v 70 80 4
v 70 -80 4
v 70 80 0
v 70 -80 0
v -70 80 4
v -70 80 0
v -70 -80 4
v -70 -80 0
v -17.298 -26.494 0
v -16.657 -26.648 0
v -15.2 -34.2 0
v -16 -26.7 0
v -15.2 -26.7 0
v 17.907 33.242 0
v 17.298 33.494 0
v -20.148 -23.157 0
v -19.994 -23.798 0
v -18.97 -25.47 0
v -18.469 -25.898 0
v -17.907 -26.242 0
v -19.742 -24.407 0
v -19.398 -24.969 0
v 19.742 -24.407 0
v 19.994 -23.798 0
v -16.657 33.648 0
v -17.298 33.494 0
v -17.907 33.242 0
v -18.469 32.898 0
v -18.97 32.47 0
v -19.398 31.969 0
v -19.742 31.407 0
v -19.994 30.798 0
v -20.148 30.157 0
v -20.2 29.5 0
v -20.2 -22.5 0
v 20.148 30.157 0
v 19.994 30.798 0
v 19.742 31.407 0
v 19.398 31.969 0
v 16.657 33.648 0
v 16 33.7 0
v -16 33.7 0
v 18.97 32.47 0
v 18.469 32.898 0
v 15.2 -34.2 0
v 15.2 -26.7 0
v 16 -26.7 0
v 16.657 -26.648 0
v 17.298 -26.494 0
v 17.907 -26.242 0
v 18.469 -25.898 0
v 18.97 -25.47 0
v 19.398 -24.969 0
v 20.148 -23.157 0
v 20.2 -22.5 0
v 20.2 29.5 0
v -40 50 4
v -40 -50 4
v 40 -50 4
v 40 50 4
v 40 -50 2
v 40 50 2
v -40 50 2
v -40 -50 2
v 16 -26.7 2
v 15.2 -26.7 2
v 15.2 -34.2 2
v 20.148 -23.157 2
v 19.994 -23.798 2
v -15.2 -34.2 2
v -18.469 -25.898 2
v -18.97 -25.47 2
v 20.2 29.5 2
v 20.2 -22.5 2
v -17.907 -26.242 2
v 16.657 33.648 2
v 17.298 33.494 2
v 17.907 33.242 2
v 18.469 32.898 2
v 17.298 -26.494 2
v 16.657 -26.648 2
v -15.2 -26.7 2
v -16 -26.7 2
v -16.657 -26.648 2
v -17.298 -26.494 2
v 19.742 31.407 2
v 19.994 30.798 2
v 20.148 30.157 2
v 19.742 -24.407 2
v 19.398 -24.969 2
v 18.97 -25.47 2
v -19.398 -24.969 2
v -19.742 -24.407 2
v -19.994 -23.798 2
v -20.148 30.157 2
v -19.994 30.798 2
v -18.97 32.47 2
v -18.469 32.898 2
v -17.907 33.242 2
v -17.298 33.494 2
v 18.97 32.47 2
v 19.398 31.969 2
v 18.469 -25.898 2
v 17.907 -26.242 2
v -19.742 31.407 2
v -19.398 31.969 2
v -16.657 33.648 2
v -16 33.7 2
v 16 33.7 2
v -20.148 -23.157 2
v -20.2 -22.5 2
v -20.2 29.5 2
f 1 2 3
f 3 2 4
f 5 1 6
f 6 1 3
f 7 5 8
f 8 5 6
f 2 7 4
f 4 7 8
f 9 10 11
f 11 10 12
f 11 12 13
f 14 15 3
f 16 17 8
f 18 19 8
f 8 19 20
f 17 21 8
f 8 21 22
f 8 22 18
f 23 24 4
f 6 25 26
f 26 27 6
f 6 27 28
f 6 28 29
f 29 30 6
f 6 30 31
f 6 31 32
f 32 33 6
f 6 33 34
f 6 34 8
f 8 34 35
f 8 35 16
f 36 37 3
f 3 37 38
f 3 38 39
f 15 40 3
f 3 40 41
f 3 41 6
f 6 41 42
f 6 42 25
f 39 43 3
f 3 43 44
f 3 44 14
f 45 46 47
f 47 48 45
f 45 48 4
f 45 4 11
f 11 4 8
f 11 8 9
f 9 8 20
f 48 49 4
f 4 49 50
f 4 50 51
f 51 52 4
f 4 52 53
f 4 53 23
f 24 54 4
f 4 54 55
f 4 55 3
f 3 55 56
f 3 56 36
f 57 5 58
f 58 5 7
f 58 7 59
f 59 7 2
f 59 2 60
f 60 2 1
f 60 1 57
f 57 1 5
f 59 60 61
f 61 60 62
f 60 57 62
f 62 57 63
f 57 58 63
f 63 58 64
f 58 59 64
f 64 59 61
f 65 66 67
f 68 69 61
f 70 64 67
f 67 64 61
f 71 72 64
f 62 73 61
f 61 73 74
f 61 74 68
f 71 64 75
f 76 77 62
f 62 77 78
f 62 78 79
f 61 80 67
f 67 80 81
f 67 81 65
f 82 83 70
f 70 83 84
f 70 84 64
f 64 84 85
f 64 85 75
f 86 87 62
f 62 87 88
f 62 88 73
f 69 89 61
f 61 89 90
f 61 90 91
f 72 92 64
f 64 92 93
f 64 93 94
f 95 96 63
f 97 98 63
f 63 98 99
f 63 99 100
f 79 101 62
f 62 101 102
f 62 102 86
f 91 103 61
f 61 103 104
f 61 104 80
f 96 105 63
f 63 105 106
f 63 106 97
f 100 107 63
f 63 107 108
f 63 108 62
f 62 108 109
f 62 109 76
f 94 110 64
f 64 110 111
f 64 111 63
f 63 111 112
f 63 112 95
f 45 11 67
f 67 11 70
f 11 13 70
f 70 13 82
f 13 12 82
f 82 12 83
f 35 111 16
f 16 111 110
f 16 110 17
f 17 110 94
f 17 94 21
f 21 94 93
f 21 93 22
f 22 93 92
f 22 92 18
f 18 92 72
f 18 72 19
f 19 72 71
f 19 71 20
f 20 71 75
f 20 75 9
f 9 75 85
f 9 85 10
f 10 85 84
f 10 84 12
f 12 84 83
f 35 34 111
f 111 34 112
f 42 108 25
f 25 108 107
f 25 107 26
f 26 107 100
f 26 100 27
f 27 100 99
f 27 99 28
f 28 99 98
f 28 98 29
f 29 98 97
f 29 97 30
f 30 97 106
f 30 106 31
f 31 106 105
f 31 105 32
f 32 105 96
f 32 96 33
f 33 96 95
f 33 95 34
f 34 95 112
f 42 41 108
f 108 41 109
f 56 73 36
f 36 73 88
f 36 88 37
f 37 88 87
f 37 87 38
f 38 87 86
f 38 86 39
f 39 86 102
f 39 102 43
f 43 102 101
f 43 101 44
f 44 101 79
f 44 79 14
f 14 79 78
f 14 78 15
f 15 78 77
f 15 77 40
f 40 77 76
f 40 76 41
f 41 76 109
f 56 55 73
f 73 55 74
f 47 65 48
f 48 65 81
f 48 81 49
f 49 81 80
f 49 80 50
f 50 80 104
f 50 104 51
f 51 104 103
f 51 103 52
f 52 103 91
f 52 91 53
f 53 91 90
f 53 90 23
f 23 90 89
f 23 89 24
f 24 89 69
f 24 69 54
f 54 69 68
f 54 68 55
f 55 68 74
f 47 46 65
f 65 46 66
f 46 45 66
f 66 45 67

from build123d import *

# Parameters (mm, degrees)
SKETCH_1_W          = 140
SKETCH_1_H          = 160
EXTRUDE_1_DEPTH     = 2
SKETCH_2_W          = 140
SKETCH_2_H          = 160
SKETCH_2_W_2        = 80
SKETCH_2_H_2        = 100
EXTRUDE_2_DEPTH     = 2
CUT_EXTRUDE_1_DEPTH = 2


with BuildPart() as part:
    # 草图1 → 凸台-拉伸1 (new body)
    with BuildSketch(Plane.XY):
        Rectangle(SKETCH_1_W, SKETCH_1_H)
    extrude(amount=EXTRUDE_1_DEPTH)

    # 草图2 → 凸台-拉伸2 (add)
    with BuildSketch(Plane.XY.offset(2)):
        Rectangle(SKETCH_2_W, SKETCH_2_H)
        Rectangle(SKETCH_2_W_2, SKETCH_2_H_2, mode=Mode.SUBTRACT)
    extrude(amount=EXTRUDE_2_DEPTH)

    # 草图4 → 切除-拉伸1 (cut)
    with BuildSketch(Plane.XY.offset(2)):
        with BuildLine():
            Line((-10.8, -34.2), (-6.8, -34.2))
            Line((-6.8, -34.2), (6.8, -34.2))
            Line((6.8, -34.2), (10.8, -34.2))
            Line((10.8, -34.2), (11.2, -34.2))
            Line((11.2, -34.2), (15.2, -34.2))
            Line((15.2, -34.2), (15.2, -26.7))
            Line((15.2, -26.7), (16, -26.7))
            ThreePointArc((16, -26.7), (18.969848481, -25.469848481), (20.2, -22.5))
            Line((20.2, -22.5), (20.2, 29.5))
            ThreePointArc((20.2, 29.5), (18.969848481, 32.469848481), (16, 33.7))
            Line((16, 33.7), (-16, 33.7))
            ThreePointArc((-16, 33.7), (-18.969848481, 32.469848481), (-20.2, 29.5))
            Line((-20.2, 29.5), (-20.2, -22.5))
            ThreePointArc((-20.2, -22.5), (-18.969848481, -25.469848481), (-16, -26.7))
            Line((-16, -26.7), (-15.2, -26.7))
            Line((-15.2, -26.7), (-15.2, -34.2))
            Line((-15.2, -34.2), (-11.2, -34.2))
            Line((-11.2, -34.2), (-10.8, -34.2))
        make_face()
    extrude(amount=-CUT_EXTRUDE_1_DEPTH, mode=Mode.SUBTRACT)


solid = part.part
